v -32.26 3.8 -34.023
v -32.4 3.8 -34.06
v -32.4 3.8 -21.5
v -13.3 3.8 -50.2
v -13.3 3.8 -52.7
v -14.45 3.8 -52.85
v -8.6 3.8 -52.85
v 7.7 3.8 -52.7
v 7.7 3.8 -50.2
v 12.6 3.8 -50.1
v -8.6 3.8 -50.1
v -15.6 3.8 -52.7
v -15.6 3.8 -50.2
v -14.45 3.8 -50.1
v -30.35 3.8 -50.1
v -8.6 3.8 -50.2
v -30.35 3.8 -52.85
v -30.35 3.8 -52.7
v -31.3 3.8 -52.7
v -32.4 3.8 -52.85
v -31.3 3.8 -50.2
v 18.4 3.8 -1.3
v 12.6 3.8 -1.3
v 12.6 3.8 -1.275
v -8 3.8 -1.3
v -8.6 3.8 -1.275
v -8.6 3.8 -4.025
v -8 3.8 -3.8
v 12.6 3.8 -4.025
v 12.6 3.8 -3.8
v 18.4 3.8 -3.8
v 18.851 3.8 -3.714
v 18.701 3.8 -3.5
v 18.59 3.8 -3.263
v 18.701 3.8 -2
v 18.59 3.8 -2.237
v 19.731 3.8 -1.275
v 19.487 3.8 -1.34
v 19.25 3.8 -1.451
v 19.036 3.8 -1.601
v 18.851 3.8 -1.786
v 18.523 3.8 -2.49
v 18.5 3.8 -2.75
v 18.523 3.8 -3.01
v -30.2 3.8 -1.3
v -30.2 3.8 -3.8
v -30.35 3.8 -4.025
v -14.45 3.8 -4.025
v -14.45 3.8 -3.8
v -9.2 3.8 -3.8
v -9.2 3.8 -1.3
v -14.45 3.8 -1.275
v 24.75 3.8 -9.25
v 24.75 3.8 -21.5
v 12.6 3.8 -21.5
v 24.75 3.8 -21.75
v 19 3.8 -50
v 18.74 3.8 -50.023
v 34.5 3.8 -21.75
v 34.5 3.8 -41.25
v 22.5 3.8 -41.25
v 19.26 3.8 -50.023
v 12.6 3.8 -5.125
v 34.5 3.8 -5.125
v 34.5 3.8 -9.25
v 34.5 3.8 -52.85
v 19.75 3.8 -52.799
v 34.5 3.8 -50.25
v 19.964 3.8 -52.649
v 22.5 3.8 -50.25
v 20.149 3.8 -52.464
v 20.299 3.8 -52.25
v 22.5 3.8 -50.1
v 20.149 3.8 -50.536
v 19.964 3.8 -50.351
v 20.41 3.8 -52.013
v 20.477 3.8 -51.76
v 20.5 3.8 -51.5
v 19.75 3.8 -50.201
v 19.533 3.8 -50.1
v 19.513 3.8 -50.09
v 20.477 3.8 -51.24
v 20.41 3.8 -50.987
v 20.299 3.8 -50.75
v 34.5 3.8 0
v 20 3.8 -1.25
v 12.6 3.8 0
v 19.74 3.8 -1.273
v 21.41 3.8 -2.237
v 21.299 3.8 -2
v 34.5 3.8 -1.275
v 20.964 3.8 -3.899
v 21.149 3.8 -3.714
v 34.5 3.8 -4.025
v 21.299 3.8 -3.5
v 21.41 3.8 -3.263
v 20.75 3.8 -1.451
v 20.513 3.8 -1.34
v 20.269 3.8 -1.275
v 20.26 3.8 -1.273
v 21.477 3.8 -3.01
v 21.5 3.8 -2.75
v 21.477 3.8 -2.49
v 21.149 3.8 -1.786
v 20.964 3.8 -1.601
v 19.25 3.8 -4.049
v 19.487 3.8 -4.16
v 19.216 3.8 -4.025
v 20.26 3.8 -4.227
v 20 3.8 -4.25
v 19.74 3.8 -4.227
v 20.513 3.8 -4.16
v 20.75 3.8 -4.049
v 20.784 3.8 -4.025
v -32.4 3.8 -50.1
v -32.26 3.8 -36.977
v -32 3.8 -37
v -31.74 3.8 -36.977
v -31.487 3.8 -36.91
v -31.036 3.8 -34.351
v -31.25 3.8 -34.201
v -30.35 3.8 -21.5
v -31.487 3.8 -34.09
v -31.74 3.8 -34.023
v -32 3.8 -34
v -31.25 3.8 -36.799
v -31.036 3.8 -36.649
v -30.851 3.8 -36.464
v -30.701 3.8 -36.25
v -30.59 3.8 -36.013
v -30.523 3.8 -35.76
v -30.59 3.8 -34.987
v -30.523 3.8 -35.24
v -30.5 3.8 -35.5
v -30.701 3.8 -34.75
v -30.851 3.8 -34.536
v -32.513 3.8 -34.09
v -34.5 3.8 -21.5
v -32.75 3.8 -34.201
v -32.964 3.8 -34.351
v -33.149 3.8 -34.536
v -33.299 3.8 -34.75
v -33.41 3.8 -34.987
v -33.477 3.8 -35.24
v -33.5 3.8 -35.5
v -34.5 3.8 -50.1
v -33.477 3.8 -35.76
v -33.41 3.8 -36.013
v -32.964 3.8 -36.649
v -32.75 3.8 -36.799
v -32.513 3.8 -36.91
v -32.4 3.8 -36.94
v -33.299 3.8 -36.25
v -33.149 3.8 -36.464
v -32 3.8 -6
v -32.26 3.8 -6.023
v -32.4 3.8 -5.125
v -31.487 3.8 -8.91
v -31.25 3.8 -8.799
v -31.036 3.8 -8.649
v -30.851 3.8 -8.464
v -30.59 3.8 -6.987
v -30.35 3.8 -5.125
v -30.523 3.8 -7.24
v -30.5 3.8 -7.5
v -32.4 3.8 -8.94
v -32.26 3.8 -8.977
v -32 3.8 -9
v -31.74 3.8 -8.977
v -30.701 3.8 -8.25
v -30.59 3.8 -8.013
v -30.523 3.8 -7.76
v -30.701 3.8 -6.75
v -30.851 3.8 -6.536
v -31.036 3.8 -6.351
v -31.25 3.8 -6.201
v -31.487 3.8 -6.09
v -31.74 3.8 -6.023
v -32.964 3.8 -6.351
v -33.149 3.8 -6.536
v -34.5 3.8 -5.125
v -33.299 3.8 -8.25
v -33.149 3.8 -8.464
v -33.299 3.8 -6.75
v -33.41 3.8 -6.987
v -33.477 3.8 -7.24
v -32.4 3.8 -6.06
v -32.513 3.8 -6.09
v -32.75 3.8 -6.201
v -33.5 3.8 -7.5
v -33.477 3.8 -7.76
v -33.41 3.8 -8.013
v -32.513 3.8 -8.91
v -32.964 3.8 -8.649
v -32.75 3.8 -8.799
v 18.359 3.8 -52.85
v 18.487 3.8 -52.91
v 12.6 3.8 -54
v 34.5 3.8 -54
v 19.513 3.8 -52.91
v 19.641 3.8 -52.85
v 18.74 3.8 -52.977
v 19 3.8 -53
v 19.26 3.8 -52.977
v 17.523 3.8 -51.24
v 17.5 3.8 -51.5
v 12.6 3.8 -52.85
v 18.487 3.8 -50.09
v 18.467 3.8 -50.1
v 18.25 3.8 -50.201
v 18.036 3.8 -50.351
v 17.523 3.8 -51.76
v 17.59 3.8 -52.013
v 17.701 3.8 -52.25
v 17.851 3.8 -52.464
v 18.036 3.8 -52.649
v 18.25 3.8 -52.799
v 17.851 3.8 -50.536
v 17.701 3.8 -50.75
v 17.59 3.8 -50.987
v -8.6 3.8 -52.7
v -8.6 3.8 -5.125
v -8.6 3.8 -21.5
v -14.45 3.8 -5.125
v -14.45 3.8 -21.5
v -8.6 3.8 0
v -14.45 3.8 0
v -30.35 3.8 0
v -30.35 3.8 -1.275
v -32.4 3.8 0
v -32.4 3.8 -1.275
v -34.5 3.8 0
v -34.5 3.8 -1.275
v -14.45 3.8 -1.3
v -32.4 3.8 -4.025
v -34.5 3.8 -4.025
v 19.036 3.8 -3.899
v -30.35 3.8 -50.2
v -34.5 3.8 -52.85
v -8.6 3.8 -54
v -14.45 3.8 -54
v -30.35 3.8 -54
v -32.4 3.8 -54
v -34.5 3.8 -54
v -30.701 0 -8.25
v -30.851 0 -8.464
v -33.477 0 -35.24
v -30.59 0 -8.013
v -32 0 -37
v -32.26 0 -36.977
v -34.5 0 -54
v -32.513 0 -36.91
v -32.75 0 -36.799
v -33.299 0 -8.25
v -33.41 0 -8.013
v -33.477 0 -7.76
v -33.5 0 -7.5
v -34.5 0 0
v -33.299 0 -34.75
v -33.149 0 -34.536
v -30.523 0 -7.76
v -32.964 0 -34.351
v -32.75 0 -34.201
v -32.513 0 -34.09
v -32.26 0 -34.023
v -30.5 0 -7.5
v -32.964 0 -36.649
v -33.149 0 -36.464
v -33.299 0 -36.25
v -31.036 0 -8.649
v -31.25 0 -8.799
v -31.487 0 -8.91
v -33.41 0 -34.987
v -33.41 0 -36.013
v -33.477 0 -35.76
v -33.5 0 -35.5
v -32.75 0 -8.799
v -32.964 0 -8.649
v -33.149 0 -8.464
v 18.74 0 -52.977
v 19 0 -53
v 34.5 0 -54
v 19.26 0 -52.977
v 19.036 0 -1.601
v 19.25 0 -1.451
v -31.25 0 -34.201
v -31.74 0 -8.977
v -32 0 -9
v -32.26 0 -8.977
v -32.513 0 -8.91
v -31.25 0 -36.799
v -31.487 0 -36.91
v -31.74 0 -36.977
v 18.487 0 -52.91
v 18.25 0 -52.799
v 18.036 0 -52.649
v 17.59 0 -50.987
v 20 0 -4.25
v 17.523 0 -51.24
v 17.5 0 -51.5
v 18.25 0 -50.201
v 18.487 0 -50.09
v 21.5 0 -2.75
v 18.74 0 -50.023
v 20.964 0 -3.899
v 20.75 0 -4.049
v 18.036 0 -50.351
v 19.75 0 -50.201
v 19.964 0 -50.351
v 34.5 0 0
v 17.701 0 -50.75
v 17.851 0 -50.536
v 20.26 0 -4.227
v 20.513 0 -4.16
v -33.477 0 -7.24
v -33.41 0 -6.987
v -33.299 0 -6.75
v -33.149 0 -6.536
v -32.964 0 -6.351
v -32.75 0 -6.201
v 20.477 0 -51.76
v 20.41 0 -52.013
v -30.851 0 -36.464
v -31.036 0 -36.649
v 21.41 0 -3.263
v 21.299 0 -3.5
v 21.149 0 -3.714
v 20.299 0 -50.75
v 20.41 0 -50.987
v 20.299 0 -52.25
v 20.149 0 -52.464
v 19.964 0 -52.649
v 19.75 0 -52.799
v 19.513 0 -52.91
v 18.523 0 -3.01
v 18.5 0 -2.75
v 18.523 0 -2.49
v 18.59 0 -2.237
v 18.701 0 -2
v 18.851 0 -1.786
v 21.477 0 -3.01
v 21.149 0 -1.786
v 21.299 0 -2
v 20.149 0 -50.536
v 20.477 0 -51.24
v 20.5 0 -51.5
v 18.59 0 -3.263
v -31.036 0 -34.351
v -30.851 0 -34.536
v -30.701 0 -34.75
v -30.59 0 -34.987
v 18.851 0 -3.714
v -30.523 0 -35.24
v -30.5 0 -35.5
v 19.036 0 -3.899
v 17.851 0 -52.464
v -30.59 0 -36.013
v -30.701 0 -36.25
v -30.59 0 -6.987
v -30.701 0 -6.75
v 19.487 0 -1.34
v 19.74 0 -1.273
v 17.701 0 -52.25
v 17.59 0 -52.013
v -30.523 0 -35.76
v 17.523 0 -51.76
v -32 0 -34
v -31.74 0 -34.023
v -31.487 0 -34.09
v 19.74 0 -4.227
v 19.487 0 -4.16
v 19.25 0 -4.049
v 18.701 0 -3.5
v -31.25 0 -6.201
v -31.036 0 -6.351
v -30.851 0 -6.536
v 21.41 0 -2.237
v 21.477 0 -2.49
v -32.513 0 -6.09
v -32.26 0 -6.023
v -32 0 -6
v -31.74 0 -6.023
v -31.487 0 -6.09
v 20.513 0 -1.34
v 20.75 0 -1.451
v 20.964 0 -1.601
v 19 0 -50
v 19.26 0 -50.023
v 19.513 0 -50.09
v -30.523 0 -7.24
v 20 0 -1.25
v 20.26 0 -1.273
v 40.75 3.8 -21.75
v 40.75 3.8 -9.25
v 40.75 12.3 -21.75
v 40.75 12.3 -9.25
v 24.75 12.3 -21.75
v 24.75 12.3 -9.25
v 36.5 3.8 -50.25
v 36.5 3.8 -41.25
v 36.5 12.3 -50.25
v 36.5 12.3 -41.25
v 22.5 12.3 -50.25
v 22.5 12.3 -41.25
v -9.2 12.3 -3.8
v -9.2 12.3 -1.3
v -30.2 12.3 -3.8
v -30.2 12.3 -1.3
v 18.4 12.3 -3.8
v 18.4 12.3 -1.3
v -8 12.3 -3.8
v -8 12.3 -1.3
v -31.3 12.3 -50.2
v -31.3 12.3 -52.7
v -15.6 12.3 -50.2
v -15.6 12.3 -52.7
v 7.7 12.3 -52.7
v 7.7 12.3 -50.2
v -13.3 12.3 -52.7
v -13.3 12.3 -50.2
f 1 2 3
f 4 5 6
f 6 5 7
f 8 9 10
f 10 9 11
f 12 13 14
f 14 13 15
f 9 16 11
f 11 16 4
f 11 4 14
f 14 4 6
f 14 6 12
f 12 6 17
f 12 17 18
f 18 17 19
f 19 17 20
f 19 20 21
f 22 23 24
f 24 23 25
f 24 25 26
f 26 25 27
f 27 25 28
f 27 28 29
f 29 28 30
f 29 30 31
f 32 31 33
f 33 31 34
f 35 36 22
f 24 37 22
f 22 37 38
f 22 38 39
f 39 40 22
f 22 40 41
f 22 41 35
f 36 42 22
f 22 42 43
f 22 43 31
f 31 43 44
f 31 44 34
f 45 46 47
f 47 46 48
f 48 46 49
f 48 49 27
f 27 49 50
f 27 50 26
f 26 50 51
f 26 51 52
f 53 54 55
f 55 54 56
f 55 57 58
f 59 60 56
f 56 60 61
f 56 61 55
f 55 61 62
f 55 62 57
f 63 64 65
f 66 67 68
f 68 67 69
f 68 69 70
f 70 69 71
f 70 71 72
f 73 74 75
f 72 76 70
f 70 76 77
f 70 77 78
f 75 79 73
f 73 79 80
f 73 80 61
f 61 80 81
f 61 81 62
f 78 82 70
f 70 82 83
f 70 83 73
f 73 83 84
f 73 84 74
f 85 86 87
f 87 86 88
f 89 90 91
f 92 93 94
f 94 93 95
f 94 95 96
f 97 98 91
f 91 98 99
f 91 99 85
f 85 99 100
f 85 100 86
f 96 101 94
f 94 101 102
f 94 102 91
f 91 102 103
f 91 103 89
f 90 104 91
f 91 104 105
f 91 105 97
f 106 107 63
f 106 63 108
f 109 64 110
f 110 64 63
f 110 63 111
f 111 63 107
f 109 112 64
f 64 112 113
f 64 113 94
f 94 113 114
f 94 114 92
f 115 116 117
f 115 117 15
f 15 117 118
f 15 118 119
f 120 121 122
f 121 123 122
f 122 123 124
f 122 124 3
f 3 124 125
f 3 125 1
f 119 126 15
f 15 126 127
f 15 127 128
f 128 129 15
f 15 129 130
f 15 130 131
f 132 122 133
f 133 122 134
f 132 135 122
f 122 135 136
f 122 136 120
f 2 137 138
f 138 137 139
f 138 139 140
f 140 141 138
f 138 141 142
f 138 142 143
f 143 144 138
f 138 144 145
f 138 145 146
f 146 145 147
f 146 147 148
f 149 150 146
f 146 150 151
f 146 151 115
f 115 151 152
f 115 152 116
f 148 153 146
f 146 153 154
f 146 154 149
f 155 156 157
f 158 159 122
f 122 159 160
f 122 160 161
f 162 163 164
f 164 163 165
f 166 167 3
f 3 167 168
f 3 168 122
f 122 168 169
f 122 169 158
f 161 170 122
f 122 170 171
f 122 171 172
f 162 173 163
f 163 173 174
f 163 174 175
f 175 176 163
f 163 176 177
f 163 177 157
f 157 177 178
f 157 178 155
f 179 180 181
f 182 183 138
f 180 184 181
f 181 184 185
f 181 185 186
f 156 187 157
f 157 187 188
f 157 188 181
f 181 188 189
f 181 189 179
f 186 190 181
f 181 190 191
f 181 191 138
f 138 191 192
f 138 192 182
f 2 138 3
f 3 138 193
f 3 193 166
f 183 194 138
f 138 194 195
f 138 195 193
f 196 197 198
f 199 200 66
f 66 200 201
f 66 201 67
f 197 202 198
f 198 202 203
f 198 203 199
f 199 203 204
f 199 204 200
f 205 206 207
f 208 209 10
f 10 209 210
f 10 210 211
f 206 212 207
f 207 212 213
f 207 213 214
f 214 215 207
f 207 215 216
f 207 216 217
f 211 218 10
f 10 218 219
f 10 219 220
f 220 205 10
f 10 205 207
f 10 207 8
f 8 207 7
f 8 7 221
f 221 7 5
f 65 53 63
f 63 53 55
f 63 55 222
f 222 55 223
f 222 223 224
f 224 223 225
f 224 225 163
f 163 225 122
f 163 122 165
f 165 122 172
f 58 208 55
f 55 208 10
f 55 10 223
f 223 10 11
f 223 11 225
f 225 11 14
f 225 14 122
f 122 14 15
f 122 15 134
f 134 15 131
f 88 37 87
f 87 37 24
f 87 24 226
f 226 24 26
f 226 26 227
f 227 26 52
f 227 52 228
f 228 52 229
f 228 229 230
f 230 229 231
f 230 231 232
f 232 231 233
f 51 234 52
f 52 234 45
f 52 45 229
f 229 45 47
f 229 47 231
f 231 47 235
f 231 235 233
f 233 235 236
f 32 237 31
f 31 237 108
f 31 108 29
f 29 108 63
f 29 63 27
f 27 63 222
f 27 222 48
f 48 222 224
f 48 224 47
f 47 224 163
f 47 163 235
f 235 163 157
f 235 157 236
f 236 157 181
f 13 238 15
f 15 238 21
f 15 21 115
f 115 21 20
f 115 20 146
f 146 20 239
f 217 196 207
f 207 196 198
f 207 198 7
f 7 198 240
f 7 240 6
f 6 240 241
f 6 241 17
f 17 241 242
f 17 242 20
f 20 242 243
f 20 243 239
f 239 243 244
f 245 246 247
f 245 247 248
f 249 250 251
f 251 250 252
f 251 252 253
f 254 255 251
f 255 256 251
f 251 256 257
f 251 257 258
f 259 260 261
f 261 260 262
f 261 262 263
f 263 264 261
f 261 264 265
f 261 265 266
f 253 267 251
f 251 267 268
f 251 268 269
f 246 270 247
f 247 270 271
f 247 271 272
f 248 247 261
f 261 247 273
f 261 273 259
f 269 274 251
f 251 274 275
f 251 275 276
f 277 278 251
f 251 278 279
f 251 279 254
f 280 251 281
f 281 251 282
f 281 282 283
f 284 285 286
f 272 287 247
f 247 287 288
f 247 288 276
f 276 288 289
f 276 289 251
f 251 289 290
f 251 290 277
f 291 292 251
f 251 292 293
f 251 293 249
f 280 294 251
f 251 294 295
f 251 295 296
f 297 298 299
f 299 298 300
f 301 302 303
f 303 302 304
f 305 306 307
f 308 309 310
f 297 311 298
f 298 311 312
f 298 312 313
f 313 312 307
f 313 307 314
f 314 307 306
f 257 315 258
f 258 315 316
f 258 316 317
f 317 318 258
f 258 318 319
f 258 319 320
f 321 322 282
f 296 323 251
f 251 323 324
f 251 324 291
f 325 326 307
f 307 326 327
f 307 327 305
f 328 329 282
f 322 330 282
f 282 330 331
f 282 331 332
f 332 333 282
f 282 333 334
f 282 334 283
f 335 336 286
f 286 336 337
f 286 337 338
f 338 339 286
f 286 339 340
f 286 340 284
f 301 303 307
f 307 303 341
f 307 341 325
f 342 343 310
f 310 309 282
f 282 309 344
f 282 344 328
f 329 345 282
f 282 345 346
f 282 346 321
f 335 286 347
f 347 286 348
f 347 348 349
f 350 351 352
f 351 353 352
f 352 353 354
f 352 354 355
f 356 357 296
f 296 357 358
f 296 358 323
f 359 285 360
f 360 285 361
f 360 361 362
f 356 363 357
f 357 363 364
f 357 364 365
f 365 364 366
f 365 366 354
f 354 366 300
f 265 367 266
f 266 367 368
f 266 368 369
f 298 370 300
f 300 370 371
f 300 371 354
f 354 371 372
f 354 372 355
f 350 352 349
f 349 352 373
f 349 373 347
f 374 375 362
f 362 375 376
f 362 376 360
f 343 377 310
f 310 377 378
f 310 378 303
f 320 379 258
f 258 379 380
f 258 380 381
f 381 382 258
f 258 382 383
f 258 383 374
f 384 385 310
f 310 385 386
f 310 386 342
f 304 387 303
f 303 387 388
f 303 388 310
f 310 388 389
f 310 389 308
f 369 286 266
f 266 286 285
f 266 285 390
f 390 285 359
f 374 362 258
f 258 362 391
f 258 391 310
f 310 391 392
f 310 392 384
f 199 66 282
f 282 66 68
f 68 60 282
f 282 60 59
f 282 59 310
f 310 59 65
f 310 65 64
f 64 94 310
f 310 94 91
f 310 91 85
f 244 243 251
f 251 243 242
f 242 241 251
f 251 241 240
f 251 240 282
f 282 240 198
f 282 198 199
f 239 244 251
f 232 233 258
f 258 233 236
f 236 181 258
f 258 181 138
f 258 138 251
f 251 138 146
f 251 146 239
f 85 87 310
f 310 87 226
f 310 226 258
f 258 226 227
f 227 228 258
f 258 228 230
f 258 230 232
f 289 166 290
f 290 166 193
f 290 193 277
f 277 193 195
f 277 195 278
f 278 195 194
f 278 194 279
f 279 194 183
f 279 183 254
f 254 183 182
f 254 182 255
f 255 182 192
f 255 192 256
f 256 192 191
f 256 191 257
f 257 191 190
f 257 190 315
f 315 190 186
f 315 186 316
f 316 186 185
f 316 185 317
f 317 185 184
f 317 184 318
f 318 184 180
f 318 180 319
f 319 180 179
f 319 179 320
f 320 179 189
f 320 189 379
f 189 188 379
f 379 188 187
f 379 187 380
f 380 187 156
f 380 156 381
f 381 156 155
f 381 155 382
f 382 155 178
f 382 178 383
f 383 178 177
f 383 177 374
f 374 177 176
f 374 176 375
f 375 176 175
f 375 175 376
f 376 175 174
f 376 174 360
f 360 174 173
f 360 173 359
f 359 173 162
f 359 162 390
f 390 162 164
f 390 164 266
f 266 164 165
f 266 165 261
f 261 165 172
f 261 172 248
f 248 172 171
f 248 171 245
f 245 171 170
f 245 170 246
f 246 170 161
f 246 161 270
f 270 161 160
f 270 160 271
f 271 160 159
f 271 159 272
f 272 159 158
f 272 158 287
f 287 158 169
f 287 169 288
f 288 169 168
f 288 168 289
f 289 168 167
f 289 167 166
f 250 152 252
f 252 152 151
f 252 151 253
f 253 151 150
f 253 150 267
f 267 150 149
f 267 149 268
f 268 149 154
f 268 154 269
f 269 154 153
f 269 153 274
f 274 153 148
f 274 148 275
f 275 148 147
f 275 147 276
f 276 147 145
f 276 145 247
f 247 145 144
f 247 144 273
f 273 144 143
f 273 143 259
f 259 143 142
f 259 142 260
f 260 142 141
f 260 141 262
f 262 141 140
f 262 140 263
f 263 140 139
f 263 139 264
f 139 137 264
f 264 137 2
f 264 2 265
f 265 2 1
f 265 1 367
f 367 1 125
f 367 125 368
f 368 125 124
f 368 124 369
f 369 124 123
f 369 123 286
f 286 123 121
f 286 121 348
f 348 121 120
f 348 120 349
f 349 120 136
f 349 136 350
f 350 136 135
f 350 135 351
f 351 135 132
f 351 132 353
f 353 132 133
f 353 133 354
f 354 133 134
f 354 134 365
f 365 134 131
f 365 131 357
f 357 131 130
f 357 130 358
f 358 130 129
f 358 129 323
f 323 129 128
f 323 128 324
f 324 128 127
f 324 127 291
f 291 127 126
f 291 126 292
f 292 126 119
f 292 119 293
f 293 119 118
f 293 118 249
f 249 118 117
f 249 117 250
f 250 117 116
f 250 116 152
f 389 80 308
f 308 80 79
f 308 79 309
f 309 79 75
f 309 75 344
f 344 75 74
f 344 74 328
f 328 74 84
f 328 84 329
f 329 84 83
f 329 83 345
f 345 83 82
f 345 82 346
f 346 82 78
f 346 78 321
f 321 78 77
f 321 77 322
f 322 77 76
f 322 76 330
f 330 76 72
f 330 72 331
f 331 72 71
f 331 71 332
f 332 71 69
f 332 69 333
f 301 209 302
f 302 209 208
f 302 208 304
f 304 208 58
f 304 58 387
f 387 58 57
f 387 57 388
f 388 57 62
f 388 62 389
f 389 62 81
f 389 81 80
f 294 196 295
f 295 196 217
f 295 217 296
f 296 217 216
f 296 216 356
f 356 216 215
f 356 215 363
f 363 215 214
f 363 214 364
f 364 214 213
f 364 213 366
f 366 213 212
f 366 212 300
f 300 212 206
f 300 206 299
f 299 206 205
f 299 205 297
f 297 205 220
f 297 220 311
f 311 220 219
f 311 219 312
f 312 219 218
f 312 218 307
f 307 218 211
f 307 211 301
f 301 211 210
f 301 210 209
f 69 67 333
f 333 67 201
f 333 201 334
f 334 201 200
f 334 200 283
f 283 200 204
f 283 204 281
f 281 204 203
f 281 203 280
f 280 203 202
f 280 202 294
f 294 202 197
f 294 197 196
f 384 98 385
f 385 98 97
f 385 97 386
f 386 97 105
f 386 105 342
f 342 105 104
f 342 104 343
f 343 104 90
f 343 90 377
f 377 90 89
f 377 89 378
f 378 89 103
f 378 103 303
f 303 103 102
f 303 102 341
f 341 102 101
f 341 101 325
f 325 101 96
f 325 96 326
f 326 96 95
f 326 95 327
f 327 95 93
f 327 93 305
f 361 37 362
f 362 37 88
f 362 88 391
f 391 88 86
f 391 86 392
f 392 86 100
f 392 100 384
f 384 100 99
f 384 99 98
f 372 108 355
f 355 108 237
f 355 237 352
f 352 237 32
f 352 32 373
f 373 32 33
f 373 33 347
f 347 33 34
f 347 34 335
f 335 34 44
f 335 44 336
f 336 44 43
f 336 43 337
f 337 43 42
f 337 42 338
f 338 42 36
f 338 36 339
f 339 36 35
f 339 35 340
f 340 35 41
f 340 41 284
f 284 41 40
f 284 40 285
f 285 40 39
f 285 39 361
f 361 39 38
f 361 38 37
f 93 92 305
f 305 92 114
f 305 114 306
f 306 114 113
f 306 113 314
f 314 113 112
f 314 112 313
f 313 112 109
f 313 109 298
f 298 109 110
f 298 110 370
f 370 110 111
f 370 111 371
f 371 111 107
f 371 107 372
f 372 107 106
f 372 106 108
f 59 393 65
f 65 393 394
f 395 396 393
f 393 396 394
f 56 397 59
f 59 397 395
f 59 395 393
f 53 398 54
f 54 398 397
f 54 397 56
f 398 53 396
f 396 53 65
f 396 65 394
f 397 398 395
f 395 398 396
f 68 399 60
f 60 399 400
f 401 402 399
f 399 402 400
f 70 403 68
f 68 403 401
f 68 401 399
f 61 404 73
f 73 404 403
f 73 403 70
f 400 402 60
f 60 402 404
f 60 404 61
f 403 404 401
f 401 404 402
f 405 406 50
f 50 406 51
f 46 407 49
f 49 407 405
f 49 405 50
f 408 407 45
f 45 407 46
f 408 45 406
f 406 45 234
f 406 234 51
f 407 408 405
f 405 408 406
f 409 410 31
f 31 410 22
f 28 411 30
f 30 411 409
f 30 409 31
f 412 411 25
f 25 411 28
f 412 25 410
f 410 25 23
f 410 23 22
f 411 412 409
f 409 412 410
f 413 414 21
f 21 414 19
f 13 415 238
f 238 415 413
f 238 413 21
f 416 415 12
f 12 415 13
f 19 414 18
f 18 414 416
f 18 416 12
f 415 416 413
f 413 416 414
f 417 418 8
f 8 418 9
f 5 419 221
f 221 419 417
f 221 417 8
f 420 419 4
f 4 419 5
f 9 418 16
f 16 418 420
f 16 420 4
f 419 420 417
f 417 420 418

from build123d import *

# Parameters (mm, degrees)
SKETCH1_W           = 69
SKETCH1_H           = 54
SKETCH1_R           = 1.5
BOSS_EXTRUDE1_DEPTH = 3.8
SKETCH2_W           = 16
SKETCH2_H           = 12.5
SKETCH2_W_2         = 14
SKETCH2_H_2         = 9
SKETCH2_W_3         = 21
SKETCH2_H_3         = 2.5
SKETCH2_W_4         = 26.4
SKETCH2_W_5         = 15.7
BOSS_EXTRUDE2_DEPTH = 8.5


with BuildPart() as part:
    # Sketch1 → Boss-Extrude1 (new body)
    with BuildSketch(Plane(origin=(0, 0, 0), x_dir=(1, 0, 0), z_dir=(0, 1, 0))):
        with Locations((0, 27)):
            Rectangle(SKETCH1_W, SKETCH1_H)
        with Locations((-32, 7.5)):
            Circle(SKETCH1_R, mode=Mode.SUBTRACT)
        with Locations((-32, 35.5)):
            Circle(SKETCH1_R, mode=Mode.SUBTRACT)
        with Locations((19, 51.5)):
            Circle(SKETCH1_R, mode=Mode.SUBTRACT)
        with Locations((20, 2.75)):
            Circle(SKETCH1_R, mode=Mode.SUBTRACT)
    extrude(amount=BOSS_EXTRUDE1_DEPTH)

    # Sketch2 → Boss-Extrude2 (add)
    with BuildSketch(Plane(origin=(0, 3.8, 0), x_dir=(1, 0, 0), z_dir=(0, 1, 0))):
        with Locations((32.75, 15.5)):
            Rectangle(SKETCH2_W, SKETCH2_H)
        with Locations((29.5, 45.75)):
            Rectangle(SKETCH2_W_2, SKETCH2_H_2)
        with Locations((-19.7, 2.55)):
            Rectangle(SKETCH2_W_3, SKETCH2_H_3)
        with Locations((5.2, 2.55)):
            Rectangle(SKETCH2_W_4, SKETCH2_H_3)
        with Locations((-23.45, 51.45)):
            Rectangle(SKETCH2_W_5, SKETCH2_H_3)
        with Locations((-2.8, 51.45)):
            Rectangle(SKETCH2_W_3, SKETCH2_H_3)
    extrude(amount=BOSS_EXTRUDE2_DEPTH)


solid = part.part
